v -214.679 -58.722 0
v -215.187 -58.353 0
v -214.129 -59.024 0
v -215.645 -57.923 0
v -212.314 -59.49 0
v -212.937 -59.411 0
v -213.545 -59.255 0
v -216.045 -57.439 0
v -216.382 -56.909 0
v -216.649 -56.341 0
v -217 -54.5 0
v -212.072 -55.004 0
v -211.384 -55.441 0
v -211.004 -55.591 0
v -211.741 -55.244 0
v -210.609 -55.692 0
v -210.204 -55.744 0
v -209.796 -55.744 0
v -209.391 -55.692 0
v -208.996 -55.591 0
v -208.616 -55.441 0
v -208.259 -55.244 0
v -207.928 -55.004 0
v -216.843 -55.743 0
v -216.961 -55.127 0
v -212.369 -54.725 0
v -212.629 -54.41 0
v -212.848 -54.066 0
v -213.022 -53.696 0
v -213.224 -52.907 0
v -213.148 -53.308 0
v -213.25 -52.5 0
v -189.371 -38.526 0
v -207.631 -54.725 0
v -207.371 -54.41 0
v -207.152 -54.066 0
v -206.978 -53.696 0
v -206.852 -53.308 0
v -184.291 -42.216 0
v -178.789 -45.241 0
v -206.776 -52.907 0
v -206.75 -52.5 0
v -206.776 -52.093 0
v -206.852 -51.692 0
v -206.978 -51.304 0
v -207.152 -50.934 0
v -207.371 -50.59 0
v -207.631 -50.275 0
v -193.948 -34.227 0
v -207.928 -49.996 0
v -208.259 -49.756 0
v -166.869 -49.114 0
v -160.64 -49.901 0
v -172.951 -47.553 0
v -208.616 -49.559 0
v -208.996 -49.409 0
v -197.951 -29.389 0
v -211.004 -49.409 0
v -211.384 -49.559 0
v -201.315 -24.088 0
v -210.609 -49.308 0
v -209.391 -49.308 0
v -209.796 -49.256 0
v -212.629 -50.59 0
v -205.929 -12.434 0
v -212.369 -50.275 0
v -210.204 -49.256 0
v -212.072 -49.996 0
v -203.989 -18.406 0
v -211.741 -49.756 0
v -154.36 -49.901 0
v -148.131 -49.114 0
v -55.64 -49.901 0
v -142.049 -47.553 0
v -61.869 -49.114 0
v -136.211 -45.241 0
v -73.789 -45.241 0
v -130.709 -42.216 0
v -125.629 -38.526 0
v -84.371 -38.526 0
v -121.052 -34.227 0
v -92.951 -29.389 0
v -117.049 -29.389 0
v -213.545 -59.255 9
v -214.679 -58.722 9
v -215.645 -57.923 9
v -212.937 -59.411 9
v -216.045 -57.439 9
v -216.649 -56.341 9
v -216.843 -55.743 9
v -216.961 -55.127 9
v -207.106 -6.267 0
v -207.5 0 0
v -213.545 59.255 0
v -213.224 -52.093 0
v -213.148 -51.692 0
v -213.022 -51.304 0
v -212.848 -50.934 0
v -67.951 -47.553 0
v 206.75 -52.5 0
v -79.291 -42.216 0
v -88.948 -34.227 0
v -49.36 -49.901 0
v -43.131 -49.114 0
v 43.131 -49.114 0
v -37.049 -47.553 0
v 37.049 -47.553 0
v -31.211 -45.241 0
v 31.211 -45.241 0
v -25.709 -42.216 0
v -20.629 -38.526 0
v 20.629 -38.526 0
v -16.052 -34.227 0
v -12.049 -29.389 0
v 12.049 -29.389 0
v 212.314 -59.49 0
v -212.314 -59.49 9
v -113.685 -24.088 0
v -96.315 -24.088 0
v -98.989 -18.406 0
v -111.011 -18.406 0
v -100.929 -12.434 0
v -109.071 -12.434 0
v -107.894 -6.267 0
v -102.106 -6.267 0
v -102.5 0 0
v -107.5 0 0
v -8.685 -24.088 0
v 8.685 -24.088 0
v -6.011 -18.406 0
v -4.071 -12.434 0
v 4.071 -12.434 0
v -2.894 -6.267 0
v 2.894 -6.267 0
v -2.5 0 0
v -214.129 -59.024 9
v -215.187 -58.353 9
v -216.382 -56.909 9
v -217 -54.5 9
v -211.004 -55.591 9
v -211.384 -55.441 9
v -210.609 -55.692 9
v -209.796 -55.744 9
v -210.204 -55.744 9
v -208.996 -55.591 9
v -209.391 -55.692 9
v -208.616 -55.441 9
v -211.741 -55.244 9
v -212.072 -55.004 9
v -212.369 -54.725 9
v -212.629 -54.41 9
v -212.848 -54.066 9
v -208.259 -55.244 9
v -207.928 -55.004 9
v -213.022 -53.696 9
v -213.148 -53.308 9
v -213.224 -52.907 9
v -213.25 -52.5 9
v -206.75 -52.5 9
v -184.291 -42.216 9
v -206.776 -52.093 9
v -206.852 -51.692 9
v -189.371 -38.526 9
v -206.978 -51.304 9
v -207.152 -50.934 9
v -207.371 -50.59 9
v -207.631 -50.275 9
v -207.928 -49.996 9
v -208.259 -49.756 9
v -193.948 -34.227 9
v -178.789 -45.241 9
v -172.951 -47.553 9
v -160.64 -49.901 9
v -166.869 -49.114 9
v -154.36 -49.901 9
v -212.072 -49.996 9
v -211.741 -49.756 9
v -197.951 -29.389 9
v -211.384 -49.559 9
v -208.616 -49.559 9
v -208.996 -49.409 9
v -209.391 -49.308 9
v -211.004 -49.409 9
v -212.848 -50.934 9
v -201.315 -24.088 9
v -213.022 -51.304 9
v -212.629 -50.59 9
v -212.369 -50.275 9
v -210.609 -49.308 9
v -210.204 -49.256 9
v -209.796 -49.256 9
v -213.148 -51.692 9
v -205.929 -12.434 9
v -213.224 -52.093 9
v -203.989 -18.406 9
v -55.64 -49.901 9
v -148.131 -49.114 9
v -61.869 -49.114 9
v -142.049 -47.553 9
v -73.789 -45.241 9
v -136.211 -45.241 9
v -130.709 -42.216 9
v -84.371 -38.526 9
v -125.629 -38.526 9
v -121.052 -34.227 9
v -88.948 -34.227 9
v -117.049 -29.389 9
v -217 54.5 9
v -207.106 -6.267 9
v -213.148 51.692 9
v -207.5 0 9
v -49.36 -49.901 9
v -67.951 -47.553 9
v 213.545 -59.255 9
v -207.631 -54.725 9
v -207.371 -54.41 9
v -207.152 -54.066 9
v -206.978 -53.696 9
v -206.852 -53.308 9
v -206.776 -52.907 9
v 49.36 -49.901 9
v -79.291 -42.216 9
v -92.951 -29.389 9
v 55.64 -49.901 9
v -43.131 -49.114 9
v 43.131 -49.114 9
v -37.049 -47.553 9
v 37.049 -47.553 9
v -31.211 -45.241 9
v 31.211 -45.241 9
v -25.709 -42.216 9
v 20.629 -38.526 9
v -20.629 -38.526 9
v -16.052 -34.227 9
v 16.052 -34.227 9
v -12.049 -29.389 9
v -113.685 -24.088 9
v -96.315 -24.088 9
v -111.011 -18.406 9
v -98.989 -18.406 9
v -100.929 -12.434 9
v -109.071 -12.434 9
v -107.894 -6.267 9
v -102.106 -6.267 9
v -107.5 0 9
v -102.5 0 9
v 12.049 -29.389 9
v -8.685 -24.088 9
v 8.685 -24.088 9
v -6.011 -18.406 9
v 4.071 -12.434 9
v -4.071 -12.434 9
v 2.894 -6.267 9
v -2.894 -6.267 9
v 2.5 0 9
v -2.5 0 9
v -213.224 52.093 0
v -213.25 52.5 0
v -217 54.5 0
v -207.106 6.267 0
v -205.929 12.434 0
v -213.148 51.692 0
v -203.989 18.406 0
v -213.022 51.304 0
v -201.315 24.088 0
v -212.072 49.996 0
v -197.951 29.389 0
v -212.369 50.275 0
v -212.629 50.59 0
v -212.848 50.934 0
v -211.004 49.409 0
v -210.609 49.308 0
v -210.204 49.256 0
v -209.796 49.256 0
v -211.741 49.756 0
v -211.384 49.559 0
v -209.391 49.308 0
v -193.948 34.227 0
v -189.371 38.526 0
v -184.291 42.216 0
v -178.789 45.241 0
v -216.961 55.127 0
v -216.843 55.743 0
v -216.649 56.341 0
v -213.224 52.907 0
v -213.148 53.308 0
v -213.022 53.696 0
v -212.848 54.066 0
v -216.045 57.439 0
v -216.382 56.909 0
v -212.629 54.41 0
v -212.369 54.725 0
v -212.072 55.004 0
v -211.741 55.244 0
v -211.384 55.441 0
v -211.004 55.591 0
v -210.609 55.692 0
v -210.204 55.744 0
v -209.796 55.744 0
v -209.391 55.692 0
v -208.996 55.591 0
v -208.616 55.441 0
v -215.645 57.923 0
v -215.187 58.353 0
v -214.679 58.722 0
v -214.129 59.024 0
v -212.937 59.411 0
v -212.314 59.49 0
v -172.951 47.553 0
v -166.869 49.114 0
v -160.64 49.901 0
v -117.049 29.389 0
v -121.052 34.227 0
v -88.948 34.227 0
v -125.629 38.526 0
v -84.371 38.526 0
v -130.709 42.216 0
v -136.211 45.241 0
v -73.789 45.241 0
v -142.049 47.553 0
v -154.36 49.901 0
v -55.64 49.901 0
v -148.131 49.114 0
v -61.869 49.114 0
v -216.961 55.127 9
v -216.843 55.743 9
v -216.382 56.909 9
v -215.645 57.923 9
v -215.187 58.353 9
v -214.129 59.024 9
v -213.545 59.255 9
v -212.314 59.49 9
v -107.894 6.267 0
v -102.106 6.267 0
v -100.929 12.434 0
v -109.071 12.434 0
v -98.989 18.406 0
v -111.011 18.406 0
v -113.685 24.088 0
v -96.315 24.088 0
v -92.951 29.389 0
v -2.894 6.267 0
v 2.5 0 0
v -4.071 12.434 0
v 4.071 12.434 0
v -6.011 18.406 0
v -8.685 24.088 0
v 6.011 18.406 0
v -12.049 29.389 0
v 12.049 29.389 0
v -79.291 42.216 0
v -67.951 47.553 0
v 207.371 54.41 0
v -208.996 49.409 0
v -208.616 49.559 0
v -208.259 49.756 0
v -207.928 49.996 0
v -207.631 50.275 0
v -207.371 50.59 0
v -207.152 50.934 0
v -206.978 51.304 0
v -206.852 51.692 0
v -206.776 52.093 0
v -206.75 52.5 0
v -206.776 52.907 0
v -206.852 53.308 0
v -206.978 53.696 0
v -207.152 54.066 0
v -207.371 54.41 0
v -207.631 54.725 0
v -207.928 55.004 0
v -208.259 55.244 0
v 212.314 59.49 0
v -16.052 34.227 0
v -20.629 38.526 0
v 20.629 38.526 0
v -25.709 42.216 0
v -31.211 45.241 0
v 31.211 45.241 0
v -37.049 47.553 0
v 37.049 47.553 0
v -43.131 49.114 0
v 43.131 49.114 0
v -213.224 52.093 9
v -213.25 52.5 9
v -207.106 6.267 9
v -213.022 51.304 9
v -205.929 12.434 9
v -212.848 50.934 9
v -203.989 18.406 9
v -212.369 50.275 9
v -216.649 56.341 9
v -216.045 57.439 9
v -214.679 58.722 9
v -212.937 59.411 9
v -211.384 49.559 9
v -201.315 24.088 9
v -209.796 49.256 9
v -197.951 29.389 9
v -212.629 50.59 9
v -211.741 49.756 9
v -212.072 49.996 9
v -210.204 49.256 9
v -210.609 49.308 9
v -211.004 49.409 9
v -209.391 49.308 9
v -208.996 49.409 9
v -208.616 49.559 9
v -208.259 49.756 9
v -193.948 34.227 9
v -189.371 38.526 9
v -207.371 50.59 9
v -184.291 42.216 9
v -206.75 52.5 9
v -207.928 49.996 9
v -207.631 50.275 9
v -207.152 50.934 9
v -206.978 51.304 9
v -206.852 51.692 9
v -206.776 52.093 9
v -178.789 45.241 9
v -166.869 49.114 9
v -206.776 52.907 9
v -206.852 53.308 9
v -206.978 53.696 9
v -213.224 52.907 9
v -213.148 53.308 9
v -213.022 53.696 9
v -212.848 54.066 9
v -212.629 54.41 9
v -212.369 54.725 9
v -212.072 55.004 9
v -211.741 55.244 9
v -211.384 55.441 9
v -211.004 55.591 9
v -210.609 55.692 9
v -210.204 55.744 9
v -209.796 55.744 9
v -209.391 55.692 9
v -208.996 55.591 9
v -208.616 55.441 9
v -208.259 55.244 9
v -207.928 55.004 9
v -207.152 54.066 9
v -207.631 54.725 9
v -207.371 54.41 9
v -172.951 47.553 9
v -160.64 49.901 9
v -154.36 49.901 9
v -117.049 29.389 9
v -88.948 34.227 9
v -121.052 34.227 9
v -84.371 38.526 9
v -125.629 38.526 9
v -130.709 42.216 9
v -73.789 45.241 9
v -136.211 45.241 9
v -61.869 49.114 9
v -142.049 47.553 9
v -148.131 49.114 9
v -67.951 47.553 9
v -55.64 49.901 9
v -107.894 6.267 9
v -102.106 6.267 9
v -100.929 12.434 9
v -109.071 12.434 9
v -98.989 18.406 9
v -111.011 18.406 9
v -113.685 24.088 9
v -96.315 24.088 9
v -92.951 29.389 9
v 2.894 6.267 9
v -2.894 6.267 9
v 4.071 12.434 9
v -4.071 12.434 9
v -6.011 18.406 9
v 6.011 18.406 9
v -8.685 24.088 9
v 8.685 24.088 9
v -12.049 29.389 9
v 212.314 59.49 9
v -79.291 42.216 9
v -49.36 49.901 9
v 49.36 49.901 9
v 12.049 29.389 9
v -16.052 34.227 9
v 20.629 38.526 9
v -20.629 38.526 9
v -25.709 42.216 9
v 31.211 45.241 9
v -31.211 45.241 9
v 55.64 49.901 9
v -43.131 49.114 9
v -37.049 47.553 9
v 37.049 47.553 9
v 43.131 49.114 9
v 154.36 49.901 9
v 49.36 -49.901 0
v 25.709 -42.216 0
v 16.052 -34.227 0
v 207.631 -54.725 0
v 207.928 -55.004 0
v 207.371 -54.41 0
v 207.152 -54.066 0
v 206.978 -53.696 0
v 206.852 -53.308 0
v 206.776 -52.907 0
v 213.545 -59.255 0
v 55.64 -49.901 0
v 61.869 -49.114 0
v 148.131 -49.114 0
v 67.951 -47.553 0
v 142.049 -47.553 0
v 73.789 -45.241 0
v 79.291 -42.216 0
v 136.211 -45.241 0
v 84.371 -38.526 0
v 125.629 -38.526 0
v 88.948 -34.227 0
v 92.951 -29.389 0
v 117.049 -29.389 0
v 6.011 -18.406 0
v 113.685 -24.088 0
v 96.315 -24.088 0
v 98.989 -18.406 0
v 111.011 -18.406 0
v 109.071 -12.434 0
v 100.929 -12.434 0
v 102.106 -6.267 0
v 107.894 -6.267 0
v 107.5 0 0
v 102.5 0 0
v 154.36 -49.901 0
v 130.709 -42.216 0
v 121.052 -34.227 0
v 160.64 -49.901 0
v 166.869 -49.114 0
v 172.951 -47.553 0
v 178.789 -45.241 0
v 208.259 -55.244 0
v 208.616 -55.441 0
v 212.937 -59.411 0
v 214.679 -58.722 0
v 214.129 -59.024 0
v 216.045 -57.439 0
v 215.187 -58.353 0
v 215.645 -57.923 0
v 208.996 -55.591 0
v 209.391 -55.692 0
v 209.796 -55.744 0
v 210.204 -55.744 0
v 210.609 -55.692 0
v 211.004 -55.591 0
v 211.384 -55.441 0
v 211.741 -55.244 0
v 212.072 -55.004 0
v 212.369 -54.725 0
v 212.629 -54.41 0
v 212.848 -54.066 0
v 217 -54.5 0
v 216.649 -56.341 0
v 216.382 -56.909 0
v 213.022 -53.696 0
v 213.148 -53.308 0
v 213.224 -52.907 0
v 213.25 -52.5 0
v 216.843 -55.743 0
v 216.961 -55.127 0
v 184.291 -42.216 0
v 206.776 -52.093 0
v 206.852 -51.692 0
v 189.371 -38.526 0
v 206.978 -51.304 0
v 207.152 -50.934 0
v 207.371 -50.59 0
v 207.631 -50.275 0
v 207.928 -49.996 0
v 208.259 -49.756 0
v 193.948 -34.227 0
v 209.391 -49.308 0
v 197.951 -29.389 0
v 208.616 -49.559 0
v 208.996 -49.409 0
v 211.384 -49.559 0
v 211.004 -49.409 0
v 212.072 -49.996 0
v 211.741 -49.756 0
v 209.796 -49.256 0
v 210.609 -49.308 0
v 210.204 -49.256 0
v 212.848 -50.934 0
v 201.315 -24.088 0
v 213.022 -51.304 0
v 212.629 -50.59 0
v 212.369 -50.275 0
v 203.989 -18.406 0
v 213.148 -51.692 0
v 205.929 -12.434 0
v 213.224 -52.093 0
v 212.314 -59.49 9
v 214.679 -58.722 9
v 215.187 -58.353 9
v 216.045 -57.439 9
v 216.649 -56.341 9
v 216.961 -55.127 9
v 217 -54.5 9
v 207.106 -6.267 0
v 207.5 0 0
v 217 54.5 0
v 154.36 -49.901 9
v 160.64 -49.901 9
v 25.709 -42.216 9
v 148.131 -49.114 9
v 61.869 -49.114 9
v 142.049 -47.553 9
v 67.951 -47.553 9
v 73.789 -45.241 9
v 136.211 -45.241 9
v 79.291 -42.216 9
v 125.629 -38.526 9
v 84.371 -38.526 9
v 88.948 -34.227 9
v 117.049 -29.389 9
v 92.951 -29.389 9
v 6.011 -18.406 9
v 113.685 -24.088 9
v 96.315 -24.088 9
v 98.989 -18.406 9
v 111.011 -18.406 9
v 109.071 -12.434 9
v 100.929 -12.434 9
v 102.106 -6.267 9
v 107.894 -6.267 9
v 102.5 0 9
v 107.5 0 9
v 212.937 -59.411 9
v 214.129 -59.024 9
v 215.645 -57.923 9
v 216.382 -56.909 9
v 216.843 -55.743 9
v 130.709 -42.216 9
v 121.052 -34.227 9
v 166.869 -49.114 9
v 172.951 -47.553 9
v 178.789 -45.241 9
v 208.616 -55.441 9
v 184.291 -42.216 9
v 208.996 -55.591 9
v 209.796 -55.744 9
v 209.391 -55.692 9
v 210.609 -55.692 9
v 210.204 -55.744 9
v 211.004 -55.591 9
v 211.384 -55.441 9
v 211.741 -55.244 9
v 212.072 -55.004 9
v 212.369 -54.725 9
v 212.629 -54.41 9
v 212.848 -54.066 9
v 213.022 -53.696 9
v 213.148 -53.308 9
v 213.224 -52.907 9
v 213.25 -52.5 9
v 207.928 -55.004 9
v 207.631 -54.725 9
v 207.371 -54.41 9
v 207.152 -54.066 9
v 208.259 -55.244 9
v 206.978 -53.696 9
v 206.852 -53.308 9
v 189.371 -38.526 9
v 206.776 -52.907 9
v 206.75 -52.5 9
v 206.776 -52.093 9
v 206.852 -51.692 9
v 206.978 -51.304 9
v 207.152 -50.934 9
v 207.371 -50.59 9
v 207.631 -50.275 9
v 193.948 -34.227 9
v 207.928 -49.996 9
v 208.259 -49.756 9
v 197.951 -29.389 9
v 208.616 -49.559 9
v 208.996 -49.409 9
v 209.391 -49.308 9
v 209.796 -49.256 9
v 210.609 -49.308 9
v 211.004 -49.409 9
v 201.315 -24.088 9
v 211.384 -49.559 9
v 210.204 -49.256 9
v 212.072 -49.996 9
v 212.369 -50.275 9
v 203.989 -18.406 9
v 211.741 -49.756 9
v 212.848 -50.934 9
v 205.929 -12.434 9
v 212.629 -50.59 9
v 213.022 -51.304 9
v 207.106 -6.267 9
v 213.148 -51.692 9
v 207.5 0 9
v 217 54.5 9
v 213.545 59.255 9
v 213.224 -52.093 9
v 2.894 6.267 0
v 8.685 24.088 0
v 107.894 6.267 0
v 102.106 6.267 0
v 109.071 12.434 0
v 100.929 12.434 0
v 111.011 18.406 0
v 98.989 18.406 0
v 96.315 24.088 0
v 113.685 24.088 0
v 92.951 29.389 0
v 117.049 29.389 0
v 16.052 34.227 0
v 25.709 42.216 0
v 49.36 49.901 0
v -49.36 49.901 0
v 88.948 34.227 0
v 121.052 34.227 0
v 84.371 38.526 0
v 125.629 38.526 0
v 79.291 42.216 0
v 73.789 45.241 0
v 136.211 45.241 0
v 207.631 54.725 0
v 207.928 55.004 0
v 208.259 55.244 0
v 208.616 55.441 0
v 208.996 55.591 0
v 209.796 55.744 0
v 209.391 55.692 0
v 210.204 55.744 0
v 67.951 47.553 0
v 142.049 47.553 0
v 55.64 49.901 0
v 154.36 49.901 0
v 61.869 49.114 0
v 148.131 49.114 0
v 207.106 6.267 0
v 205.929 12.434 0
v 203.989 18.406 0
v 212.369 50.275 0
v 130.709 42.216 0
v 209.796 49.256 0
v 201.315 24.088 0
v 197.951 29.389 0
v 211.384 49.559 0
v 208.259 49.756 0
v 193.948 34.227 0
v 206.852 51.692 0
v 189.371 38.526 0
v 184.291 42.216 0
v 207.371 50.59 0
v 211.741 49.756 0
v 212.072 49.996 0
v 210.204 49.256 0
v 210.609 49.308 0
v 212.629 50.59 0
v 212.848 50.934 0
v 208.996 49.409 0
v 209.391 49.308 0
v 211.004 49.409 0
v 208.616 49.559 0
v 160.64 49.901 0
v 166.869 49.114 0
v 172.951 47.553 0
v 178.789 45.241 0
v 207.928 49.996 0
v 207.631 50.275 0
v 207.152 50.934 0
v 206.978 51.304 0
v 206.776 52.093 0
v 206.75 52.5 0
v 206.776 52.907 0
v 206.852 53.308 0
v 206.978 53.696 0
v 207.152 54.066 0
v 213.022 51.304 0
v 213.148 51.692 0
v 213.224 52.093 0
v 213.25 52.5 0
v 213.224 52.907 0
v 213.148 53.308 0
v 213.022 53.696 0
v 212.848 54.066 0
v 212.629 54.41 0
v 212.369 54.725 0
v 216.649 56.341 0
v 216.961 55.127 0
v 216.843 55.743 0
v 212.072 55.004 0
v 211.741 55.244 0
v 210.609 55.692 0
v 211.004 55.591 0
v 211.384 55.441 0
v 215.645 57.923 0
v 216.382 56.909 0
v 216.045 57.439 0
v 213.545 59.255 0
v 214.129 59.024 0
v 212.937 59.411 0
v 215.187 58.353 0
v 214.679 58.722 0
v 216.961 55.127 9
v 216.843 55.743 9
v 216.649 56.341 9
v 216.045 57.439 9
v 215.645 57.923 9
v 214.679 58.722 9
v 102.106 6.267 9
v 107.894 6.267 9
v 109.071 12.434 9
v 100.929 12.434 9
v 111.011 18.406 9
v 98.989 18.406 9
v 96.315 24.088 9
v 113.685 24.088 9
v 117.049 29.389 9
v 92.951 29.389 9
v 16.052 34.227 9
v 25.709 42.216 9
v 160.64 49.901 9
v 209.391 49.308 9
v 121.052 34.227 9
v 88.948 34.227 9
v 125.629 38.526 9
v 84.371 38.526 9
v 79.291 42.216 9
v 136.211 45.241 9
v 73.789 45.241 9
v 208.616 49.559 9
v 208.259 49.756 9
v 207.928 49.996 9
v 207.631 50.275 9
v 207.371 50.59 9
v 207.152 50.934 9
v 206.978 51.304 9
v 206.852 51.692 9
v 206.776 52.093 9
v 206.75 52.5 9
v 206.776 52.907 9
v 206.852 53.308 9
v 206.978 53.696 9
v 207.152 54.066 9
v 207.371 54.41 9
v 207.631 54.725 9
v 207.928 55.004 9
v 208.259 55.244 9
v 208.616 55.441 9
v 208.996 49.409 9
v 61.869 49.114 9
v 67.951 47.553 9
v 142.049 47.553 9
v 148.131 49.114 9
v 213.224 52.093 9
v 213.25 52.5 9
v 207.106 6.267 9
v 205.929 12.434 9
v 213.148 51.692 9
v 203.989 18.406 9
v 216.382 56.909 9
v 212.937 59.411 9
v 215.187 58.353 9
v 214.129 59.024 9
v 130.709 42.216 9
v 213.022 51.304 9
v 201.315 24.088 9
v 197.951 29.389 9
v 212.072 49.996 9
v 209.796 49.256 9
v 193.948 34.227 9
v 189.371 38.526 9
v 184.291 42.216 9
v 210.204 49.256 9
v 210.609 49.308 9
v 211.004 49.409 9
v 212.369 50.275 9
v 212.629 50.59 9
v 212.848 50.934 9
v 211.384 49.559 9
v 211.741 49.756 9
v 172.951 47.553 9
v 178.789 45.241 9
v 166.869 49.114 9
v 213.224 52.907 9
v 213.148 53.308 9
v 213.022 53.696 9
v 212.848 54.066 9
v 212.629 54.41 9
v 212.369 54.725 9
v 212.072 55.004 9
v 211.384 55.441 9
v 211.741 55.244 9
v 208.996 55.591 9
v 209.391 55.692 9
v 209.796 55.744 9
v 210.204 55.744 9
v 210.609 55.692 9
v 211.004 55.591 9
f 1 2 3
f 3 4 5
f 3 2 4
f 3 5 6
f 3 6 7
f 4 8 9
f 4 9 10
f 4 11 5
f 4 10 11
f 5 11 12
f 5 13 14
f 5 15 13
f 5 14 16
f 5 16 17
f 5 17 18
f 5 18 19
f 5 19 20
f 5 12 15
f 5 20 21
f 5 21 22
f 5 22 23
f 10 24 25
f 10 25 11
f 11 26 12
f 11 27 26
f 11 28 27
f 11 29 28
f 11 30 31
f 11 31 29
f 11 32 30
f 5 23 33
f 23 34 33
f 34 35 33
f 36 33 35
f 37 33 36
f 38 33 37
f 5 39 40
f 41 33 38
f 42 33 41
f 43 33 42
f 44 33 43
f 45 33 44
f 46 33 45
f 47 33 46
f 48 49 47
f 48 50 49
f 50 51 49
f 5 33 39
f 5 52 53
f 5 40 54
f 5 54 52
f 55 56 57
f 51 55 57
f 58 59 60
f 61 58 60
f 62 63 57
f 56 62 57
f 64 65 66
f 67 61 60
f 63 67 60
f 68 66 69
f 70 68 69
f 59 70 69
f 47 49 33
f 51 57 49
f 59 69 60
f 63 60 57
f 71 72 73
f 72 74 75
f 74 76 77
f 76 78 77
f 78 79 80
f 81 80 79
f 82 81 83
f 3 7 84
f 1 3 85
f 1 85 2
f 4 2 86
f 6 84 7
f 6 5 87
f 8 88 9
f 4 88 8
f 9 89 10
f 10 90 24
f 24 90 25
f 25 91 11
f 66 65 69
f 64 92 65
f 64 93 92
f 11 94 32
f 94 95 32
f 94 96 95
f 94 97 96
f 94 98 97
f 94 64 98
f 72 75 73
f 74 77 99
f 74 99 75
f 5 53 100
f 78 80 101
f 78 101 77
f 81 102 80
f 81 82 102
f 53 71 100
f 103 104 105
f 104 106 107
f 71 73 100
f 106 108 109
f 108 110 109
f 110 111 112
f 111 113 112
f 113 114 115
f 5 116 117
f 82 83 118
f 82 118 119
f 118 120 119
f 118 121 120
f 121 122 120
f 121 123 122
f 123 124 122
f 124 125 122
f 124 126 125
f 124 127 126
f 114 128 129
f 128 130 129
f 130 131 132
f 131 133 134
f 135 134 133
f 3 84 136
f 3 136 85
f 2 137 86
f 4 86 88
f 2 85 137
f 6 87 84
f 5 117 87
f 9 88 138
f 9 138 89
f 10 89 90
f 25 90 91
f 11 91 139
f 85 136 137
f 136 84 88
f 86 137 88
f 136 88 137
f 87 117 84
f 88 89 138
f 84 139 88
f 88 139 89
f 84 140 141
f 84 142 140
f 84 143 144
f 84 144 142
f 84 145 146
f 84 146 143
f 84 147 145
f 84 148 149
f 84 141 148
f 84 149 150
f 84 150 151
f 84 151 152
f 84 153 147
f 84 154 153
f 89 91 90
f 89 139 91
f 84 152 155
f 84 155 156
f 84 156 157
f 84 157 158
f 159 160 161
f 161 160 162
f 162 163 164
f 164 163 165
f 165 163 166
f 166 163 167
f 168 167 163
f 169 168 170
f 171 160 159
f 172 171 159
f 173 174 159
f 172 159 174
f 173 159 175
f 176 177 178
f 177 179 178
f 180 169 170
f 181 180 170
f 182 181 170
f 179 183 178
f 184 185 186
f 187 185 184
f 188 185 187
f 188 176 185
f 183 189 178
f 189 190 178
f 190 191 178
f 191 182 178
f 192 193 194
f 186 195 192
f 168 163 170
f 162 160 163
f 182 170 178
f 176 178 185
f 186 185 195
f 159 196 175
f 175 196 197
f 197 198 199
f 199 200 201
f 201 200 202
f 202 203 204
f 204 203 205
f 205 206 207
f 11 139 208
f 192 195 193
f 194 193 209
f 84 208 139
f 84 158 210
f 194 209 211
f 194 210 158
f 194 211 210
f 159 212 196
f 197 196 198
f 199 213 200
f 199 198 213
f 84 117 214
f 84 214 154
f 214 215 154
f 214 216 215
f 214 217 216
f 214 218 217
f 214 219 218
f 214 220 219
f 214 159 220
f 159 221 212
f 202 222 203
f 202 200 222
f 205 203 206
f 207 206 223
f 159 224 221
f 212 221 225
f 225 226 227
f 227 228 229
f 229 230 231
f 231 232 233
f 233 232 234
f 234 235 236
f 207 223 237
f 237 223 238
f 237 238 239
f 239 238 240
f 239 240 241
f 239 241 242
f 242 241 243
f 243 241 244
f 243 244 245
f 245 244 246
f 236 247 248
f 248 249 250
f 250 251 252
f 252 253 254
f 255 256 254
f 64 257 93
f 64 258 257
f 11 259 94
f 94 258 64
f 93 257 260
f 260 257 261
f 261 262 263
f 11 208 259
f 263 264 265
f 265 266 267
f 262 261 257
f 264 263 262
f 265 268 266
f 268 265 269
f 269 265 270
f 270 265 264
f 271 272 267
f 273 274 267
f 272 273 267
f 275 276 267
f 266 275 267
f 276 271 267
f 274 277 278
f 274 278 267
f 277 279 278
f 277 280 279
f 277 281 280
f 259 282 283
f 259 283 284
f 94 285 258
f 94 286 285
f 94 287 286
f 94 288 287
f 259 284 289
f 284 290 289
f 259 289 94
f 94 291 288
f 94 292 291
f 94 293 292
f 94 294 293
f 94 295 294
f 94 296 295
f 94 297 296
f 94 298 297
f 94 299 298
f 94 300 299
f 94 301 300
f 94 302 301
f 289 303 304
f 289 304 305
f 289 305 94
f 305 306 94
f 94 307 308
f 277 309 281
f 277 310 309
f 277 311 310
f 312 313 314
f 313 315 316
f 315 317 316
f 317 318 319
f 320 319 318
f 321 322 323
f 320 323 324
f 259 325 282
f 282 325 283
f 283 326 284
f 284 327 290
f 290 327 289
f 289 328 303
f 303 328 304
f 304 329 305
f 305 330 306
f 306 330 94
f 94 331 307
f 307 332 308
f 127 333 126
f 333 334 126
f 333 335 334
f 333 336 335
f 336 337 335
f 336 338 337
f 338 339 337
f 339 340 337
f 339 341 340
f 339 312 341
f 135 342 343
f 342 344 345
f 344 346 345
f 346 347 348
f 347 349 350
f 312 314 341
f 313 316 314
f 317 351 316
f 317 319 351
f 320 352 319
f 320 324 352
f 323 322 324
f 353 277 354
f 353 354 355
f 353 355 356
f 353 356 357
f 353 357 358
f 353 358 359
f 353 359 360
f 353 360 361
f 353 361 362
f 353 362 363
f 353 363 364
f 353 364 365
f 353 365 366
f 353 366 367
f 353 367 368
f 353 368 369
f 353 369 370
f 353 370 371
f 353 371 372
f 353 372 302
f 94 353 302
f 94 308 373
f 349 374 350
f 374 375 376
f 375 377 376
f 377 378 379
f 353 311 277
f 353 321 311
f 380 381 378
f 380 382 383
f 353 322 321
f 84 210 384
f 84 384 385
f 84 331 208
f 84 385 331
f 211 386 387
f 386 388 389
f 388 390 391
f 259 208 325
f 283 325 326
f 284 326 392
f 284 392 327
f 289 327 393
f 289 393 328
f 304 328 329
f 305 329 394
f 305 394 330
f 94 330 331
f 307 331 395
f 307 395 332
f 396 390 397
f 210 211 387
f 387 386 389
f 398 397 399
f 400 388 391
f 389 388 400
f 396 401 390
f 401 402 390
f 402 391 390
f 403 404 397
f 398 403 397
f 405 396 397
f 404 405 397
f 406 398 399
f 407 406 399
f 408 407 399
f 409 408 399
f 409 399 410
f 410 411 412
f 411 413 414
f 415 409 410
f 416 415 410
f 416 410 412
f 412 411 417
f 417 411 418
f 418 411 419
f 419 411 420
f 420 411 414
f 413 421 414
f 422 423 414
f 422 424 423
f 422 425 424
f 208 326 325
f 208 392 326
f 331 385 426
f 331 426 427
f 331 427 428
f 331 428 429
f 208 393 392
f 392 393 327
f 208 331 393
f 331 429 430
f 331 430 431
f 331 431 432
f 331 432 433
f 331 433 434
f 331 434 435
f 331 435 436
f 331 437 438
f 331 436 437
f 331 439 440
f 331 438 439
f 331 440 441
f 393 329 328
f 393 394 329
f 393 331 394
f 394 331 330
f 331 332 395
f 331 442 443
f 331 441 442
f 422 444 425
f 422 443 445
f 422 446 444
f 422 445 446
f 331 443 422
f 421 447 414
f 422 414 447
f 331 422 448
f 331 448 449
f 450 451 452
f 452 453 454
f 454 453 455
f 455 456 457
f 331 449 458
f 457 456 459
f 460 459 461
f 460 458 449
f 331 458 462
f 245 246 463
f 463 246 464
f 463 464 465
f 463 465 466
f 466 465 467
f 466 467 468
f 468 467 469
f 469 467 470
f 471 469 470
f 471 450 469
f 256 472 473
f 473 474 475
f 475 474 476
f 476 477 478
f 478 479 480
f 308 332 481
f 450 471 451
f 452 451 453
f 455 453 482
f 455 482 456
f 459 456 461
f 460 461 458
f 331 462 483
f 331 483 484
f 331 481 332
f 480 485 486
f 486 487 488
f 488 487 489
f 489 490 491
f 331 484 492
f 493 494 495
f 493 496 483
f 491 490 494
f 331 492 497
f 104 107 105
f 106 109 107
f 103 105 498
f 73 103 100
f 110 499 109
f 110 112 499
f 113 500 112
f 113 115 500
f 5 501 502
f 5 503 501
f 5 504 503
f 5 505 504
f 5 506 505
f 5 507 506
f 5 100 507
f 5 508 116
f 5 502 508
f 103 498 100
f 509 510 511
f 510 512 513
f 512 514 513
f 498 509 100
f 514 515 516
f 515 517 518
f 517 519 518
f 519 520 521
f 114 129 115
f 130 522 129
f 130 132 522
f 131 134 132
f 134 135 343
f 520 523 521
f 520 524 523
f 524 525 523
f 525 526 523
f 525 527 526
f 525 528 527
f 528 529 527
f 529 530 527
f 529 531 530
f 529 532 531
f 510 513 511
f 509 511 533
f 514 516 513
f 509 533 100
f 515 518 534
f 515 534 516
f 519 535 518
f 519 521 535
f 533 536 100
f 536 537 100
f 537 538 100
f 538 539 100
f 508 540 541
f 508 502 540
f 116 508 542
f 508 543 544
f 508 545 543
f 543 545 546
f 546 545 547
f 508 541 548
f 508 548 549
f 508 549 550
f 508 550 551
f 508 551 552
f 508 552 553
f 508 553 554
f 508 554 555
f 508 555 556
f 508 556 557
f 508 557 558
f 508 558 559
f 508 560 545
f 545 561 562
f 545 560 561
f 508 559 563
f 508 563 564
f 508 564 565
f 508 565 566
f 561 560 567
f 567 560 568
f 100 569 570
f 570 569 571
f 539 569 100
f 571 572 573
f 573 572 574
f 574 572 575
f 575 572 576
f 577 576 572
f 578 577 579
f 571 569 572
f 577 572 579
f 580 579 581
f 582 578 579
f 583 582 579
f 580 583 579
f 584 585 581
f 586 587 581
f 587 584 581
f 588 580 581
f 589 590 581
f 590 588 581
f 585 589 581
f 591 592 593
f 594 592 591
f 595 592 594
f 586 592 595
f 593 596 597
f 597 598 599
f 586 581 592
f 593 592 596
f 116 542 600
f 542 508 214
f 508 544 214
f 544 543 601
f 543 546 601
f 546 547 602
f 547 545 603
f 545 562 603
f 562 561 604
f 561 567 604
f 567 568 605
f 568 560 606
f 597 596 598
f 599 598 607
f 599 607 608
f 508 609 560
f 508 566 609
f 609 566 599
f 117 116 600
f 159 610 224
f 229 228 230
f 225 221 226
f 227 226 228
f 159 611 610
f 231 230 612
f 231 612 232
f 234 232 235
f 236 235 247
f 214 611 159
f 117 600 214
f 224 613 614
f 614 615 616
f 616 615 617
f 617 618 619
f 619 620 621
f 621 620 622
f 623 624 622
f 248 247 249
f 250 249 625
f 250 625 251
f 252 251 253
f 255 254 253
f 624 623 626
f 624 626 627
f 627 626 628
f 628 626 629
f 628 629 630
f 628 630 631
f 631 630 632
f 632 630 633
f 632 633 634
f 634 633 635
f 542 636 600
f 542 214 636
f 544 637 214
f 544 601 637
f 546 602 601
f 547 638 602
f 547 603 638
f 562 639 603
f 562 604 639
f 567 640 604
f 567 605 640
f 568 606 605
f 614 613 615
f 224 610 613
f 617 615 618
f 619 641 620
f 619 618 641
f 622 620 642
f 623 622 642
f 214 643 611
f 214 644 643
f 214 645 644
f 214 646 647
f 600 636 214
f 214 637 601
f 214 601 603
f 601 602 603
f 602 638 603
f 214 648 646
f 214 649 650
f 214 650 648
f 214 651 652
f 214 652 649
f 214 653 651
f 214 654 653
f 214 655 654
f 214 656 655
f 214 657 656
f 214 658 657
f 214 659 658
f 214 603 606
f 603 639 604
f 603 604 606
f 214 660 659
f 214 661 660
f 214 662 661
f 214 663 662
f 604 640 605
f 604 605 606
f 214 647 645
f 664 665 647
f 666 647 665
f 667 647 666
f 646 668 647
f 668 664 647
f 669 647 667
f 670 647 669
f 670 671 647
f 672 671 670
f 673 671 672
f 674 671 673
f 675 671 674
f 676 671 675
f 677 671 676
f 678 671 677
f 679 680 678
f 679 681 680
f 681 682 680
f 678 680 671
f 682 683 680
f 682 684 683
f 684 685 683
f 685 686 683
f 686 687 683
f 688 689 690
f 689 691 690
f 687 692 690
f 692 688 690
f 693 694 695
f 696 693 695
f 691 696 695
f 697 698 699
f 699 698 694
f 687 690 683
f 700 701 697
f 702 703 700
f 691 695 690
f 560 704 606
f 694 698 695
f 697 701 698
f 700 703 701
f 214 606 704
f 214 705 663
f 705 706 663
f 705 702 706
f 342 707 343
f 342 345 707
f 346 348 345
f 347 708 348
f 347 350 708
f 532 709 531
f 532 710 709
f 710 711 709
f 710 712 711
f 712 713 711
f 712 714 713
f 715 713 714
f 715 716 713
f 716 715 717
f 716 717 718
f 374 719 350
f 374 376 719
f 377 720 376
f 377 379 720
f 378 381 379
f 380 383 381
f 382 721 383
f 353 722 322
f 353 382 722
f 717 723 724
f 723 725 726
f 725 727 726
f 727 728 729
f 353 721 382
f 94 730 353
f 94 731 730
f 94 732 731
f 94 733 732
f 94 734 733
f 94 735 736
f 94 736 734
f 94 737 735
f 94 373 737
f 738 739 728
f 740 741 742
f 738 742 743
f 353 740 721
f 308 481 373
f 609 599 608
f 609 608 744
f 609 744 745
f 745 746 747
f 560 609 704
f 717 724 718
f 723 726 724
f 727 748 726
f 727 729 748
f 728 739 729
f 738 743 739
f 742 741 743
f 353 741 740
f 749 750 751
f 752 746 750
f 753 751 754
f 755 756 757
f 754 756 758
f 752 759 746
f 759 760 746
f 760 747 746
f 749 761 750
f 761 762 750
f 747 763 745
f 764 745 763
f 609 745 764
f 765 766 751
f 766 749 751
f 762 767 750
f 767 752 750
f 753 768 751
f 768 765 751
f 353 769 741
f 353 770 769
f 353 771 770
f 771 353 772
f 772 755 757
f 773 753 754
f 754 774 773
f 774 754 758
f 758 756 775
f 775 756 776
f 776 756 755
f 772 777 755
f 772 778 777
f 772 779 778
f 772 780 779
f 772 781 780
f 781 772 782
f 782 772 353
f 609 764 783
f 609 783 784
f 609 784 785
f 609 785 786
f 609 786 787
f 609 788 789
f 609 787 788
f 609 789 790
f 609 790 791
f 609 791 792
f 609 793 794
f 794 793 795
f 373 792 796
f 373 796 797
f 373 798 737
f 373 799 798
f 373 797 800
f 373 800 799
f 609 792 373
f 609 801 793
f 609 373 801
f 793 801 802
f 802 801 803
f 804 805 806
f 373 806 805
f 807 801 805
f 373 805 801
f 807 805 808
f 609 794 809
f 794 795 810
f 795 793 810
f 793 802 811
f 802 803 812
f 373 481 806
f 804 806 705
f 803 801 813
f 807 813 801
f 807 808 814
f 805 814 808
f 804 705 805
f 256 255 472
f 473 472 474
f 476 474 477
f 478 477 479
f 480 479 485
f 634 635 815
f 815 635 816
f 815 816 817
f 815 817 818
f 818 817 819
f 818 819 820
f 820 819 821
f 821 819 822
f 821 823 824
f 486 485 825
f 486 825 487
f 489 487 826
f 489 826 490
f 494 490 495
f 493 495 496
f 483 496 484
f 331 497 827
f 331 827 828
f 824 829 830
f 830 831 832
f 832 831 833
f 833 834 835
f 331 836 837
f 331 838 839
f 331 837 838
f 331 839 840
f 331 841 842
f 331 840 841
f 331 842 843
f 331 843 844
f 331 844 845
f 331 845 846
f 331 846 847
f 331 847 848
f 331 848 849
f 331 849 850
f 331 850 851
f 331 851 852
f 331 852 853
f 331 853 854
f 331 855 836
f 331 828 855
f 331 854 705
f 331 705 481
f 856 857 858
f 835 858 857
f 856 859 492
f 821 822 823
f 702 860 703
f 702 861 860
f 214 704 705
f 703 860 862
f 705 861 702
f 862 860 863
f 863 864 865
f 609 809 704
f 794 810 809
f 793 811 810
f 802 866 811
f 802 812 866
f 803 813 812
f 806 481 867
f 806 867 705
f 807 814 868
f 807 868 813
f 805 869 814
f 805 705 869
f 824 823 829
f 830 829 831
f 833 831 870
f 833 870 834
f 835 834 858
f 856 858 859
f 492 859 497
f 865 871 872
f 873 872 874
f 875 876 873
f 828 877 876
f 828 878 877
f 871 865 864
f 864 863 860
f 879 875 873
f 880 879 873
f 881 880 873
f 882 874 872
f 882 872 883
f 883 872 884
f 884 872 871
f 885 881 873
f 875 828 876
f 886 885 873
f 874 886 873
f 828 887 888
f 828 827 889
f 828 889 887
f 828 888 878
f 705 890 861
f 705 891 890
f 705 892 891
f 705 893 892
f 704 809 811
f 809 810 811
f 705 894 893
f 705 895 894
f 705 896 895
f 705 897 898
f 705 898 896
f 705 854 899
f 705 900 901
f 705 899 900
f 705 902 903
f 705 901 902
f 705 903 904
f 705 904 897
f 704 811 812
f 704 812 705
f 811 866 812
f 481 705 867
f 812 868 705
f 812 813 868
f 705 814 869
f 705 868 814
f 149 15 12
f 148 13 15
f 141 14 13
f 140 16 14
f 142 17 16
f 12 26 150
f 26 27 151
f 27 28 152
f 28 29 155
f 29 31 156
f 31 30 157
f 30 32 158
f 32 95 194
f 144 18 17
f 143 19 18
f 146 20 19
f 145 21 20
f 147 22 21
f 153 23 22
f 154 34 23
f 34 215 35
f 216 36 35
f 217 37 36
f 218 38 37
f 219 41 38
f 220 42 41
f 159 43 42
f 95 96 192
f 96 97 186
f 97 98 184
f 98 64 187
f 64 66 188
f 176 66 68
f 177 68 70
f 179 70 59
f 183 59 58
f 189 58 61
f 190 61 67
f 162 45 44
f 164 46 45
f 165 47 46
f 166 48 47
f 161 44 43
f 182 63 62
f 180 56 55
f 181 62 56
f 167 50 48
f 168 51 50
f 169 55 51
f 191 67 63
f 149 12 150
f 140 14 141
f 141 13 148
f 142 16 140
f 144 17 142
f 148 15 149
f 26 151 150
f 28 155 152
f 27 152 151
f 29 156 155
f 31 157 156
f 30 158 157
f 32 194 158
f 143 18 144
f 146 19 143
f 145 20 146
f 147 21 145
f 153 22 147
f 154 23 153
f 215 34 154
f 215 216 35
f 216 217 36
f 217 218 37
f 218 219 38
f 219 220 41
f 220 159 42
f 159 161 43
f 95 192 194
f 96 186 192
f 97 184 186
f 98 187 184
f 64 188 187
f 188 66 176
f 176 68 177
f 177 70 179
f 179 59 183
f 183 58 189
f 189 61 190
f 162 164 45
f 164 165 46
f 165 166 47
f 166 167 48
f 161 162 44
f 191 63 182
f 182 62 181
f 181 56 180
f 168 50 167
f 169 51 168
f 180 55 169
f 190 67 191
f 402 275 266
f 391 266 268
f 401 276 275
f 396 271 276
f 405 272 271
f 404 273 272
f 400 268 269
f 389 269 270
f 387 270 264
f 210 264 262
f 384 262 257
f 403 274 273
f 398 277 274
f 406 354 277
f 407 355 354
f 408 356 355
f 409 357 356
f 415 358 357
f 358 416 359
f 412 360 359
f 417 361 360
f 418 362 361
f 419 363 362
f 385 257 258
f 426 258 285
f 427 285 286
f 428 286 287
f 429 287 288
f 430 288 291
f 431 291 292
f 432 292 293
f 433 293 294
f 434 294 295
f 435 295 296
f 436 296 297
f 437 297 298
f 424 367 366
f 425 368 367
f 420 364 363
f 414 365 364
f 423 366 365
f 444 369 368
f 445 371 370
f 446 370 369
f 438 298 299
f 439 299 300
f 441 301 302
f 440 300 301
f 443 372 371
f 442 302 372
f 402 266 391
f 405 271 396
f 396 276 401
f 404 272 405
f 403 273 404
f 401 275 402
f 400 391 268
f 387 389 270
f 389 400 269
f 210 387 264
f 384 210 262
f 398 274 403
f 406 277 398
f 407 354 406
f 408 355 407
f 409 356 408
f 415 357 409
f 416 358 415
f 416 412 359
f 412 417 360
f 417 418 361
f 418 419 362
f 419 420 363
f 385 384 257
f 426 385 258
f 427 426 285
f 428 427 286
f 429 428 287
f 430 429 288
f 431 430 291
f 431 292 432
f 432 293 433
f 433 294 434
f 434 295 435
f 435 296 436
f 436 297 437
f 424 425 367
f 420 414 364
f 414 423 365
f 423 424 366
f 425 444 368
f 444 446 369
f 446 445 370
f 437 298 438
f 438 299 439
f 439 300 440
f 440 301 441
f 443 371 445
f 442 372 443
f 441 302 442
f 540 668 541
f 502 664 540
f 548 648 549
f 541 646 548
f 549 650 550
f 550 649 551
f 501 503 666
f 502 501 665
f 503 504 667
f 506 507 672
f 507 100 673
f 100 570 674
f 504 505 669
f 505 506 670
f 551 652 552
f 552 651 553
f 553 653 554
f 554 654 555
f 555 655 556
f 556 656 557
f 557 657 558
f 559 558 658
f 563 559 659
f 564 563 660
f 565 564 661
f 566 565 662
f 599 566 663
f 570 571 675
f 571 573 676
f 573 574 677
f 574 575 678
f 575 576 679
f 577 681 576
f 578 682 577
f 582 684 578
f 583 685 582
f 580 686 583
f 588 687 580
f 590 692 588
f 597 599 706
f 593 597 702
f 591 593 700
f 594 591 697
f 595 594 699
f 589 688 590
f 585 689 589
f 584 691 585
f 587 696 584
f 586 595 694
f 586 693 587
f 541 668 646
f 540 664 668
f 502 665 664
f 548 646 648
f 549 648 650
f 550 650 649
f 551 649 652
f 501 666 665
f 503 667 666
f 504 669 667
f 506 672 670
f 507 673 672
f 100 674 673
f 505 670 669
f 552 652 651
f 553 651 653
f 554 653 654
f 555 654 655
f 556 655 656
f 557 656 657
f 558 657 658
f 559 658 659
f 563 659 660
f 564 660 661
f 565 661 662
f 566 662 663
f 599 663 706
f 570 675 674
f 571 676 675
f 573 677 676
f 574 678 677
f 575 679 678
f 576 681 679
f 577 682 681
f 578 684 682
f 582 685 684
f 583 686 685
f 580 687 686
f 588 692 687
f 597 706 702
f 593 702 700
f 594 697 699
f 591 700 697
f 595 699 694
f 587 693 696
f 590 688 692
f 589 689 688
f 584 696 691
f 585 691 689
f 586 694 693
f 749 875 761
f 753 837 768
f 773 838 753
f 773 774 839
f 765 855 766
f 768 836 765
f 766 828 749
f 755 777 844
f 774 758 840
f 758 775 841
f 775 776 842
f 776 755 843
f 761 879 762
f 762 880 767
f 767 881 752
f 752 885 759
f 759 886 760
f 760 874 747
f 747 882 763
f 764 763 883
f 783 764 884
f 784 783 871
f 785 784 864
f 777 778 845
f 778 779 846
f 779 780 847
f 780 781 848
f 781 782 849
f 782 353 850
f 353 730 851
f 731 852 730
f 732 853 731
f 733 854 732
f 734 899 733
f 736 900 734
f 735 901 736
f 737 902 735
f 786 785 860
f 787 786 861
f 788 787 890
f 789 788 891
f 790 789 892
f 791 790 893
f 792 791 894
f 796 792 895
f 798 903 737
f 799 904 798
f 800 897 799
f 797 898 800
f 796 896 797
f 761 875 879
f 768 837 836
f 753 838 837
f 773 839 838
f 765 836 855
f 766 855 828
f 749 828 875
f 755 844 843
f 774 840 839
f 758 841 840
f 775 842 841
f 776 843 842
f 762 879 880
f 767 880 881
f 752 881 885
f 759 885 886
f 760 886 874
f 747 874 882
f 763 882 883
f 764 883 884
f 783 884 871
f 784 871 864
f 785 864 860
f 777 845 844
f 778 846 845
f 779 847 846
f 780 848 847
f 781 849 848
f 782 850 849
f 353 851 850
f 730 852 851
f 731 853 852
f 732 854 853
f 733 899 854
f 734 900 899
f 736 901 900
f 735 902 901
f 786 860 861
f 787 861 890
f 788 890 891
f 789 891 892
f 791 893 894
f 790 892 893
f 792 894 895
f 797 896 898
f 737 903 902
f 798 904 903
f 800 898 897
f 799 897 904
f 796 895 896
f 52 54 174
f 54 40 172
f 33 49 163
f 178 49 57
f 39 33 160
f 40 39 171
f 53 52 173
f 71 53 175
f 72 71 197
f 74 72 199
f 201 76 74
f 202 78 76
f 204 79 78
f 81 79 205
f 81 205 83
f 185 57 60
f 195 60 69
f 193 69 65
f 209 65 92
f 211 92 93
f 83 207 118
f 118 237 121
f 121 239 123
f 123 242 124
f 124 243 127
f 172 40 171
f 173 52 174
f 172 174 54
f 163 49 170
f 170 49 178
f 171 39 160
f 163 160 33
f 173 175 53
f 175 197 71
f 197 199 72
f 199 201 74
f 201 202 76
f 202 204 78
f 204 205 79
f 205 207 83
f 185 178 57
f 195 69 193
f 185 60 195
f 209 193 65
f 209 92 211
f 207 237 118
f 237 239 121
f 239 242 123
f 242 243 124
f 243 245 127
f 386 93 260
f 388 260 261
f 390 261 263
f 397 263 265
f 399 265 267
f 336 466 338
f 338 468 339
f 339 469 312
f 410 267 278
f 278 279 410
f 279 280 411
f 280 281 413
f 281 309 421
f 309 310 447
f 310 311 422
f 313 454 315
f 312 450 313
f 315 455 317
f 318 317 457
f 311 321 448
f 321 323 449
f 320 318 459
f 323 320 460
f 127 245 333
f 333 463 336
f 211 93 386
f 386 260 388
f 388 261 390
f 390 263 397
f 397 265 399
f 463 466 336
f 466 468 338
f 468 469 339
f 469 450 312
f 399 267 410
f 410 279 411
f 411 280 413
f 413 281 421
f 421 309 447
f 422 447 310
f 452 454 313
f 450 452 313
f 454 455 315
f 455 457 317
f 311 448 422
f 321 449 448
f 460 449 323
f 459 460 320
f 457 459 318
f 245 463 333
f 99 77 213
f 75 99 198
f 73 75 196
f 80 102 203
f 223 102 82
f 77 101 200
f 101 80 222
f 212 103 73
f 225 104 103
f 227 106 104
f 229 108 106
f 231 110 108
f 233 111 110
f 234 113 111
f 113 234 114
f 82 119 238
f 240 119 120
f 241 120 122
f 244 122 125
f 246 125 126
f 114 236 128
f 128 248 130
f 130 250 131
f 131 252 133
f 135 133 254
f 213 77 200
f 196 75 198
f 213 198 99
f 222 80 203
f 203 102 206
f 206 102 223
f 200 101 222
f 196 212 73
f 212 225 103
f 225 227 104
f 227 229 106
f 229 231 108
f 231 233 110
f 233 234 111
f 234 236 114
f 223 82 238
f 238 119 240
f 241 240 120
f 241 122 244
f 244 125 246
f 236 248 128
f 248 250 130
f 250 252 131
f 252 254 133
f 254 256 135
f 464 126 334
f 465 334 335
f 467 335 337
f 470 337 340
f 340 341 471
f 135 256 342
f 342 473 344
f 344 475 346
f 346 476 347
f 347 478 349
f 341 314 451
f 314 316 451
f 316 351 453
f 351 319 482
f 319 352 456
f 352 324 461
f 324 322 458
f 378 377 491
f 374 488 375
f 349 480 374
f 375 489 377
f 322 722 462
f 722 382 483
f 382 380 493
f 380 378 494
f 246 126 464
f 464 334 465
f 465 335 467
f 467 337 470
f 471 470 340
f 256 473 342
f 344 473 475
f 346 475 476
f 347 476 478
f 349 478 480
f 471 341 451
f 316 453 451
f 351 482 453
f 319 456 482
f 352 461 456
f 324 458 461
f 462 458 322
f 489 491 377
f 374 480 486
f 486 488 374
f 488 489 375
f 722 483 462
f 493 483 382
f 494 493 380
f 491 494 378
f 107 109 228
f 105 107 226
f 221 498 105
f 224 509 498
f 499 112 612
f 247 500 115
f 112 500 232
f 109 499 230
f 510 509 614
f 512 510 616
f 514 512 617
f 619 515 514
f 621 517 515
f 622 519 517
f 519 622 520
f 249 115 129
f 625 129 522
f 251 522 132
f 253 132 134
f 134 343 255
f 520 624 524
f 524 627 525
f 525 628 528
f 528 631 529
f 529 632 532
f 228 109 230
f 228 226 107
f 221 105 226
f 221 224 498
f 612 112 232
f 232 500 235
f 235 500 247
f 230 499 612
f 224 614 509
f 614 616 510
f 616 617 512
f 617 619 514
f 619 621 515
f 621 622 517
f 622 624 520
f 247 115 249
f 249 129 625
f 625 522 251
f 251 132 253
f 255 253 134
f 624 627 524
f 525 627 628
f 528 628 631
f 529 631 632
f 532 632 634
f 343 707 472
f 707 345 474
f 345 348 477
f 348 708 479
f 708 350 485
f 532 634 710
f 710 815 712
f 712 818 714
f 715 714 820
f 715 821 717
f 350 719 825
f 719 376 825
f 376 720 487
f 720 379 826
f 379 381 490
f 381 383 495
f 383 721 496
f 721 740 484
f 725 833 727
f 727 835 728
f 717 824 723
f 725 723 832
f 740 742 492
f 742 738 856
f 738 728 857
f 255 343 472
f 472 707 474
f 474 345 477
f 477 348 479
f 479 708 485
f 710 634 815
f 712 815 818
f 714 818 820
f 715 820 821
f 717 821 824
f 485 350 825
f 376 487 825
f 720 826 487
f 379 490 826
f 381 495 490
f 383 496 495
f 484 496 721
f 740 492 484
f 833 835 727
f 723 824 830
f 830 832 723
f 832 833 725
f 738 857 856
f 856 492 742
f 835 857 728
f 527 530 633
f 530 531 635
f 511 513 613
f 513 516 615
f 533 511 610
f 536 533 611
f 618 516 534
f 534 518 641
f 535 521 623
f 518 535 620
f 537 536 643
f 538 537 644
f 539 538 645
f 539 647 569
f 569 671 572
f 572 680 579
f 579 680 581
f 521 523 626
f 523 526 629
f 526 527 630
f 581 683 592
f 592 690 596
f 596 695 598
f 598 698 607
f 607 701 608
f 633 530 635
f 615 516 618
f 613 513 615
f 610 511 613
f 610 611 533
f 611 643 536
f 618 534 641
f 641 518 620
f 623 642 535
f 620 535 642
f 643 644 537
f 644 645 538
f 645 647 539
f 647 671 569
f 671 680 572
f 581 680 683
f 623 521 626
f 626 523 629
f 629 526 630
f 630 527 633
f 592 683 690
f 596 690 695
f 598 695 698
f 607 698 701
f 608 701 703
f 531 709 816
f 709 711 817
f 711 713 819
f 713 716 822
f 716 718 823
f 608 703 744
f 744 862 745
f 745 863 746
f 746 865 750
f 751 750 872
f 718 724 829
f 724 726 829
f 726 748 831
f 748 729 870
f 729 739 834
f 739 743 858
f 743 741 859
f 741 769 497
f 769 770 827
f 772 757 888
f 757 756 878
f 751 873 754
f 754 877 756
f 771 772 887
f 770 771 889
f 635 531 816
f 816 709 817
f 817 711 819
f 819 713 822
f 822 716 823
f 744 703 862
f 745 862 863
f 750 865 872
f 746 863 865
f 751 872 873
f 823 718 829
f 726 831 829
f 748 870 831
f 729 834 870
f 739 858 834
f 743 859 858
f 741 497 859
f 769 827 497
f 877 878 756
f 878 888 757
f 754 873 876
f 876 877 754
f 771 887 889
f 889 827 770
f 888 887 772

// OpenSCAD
$fn = 50;

difference() {
	union() {
		hull() {
			translate(v = [-212.0, 54.5, 0]) {
				cylinder(h = 9, r = 5);
			}
			translate(v = [212.0, 54.5, 0]) {
				cylinder(h = 9, r = 5);
			}
			translate(v = [-212.0, -54.5, 0]) {
				cylinder(h = 9, r = 5);
			}
			translate(v = [212.0, -54.5, 0]) {
				cylinder(h = 9, r = 5);
			}
		}
	}
	union() {
		translate(v = [-210.0, -52.5, -100.0]) {
			cylinder(h = 200, r = 3.25);
		}
		translate(v = [-210.0, 52.5, -100.0]) {
			cylinder(h = 200, r = 3.25);
		}
		translate(v = [210.0, -52.5, -100.0]) {
			cylinder(h = 200, r = 3.25);
		}
		translate(v = [210.0, 52.5, -100.0]) {
			cylinder(h = 200, r = 3.25);
		}
		translate(v = [-210.0, -52.5, -100.0]) {
			cylinder(h = 200, r = 1.8);
		}
		translate(v = [-210.0, 52.5, -100.0]) {
			cylinder(h = 200, r = 1.8);
		}
		translate(v = [210.0, -52.5, -100.0]) {
			cylinder(h = 200, r = 1.8);
		}
		translate(v = [210.0, 52.5, -100.0]) {
			cylinder(h = 200, r = 1.8);
		}
		translate(v = [-157.5, 0, 0.0]) {
			cylinder(h = 9, r = 50.0);
		}
		translate(v = [-52.5, 0, 0.0]) {
			cylinder(h = 9, r = 50.0);
		}
		translate(v = [52.5, 0, 0.0]) {
			cylinder(h = 9, r = 50.0);
		}
		translate(v = [157.5, 0, 0.0]) {
			cylinder(h = 9, r = 50.0);
		}
	}
}
